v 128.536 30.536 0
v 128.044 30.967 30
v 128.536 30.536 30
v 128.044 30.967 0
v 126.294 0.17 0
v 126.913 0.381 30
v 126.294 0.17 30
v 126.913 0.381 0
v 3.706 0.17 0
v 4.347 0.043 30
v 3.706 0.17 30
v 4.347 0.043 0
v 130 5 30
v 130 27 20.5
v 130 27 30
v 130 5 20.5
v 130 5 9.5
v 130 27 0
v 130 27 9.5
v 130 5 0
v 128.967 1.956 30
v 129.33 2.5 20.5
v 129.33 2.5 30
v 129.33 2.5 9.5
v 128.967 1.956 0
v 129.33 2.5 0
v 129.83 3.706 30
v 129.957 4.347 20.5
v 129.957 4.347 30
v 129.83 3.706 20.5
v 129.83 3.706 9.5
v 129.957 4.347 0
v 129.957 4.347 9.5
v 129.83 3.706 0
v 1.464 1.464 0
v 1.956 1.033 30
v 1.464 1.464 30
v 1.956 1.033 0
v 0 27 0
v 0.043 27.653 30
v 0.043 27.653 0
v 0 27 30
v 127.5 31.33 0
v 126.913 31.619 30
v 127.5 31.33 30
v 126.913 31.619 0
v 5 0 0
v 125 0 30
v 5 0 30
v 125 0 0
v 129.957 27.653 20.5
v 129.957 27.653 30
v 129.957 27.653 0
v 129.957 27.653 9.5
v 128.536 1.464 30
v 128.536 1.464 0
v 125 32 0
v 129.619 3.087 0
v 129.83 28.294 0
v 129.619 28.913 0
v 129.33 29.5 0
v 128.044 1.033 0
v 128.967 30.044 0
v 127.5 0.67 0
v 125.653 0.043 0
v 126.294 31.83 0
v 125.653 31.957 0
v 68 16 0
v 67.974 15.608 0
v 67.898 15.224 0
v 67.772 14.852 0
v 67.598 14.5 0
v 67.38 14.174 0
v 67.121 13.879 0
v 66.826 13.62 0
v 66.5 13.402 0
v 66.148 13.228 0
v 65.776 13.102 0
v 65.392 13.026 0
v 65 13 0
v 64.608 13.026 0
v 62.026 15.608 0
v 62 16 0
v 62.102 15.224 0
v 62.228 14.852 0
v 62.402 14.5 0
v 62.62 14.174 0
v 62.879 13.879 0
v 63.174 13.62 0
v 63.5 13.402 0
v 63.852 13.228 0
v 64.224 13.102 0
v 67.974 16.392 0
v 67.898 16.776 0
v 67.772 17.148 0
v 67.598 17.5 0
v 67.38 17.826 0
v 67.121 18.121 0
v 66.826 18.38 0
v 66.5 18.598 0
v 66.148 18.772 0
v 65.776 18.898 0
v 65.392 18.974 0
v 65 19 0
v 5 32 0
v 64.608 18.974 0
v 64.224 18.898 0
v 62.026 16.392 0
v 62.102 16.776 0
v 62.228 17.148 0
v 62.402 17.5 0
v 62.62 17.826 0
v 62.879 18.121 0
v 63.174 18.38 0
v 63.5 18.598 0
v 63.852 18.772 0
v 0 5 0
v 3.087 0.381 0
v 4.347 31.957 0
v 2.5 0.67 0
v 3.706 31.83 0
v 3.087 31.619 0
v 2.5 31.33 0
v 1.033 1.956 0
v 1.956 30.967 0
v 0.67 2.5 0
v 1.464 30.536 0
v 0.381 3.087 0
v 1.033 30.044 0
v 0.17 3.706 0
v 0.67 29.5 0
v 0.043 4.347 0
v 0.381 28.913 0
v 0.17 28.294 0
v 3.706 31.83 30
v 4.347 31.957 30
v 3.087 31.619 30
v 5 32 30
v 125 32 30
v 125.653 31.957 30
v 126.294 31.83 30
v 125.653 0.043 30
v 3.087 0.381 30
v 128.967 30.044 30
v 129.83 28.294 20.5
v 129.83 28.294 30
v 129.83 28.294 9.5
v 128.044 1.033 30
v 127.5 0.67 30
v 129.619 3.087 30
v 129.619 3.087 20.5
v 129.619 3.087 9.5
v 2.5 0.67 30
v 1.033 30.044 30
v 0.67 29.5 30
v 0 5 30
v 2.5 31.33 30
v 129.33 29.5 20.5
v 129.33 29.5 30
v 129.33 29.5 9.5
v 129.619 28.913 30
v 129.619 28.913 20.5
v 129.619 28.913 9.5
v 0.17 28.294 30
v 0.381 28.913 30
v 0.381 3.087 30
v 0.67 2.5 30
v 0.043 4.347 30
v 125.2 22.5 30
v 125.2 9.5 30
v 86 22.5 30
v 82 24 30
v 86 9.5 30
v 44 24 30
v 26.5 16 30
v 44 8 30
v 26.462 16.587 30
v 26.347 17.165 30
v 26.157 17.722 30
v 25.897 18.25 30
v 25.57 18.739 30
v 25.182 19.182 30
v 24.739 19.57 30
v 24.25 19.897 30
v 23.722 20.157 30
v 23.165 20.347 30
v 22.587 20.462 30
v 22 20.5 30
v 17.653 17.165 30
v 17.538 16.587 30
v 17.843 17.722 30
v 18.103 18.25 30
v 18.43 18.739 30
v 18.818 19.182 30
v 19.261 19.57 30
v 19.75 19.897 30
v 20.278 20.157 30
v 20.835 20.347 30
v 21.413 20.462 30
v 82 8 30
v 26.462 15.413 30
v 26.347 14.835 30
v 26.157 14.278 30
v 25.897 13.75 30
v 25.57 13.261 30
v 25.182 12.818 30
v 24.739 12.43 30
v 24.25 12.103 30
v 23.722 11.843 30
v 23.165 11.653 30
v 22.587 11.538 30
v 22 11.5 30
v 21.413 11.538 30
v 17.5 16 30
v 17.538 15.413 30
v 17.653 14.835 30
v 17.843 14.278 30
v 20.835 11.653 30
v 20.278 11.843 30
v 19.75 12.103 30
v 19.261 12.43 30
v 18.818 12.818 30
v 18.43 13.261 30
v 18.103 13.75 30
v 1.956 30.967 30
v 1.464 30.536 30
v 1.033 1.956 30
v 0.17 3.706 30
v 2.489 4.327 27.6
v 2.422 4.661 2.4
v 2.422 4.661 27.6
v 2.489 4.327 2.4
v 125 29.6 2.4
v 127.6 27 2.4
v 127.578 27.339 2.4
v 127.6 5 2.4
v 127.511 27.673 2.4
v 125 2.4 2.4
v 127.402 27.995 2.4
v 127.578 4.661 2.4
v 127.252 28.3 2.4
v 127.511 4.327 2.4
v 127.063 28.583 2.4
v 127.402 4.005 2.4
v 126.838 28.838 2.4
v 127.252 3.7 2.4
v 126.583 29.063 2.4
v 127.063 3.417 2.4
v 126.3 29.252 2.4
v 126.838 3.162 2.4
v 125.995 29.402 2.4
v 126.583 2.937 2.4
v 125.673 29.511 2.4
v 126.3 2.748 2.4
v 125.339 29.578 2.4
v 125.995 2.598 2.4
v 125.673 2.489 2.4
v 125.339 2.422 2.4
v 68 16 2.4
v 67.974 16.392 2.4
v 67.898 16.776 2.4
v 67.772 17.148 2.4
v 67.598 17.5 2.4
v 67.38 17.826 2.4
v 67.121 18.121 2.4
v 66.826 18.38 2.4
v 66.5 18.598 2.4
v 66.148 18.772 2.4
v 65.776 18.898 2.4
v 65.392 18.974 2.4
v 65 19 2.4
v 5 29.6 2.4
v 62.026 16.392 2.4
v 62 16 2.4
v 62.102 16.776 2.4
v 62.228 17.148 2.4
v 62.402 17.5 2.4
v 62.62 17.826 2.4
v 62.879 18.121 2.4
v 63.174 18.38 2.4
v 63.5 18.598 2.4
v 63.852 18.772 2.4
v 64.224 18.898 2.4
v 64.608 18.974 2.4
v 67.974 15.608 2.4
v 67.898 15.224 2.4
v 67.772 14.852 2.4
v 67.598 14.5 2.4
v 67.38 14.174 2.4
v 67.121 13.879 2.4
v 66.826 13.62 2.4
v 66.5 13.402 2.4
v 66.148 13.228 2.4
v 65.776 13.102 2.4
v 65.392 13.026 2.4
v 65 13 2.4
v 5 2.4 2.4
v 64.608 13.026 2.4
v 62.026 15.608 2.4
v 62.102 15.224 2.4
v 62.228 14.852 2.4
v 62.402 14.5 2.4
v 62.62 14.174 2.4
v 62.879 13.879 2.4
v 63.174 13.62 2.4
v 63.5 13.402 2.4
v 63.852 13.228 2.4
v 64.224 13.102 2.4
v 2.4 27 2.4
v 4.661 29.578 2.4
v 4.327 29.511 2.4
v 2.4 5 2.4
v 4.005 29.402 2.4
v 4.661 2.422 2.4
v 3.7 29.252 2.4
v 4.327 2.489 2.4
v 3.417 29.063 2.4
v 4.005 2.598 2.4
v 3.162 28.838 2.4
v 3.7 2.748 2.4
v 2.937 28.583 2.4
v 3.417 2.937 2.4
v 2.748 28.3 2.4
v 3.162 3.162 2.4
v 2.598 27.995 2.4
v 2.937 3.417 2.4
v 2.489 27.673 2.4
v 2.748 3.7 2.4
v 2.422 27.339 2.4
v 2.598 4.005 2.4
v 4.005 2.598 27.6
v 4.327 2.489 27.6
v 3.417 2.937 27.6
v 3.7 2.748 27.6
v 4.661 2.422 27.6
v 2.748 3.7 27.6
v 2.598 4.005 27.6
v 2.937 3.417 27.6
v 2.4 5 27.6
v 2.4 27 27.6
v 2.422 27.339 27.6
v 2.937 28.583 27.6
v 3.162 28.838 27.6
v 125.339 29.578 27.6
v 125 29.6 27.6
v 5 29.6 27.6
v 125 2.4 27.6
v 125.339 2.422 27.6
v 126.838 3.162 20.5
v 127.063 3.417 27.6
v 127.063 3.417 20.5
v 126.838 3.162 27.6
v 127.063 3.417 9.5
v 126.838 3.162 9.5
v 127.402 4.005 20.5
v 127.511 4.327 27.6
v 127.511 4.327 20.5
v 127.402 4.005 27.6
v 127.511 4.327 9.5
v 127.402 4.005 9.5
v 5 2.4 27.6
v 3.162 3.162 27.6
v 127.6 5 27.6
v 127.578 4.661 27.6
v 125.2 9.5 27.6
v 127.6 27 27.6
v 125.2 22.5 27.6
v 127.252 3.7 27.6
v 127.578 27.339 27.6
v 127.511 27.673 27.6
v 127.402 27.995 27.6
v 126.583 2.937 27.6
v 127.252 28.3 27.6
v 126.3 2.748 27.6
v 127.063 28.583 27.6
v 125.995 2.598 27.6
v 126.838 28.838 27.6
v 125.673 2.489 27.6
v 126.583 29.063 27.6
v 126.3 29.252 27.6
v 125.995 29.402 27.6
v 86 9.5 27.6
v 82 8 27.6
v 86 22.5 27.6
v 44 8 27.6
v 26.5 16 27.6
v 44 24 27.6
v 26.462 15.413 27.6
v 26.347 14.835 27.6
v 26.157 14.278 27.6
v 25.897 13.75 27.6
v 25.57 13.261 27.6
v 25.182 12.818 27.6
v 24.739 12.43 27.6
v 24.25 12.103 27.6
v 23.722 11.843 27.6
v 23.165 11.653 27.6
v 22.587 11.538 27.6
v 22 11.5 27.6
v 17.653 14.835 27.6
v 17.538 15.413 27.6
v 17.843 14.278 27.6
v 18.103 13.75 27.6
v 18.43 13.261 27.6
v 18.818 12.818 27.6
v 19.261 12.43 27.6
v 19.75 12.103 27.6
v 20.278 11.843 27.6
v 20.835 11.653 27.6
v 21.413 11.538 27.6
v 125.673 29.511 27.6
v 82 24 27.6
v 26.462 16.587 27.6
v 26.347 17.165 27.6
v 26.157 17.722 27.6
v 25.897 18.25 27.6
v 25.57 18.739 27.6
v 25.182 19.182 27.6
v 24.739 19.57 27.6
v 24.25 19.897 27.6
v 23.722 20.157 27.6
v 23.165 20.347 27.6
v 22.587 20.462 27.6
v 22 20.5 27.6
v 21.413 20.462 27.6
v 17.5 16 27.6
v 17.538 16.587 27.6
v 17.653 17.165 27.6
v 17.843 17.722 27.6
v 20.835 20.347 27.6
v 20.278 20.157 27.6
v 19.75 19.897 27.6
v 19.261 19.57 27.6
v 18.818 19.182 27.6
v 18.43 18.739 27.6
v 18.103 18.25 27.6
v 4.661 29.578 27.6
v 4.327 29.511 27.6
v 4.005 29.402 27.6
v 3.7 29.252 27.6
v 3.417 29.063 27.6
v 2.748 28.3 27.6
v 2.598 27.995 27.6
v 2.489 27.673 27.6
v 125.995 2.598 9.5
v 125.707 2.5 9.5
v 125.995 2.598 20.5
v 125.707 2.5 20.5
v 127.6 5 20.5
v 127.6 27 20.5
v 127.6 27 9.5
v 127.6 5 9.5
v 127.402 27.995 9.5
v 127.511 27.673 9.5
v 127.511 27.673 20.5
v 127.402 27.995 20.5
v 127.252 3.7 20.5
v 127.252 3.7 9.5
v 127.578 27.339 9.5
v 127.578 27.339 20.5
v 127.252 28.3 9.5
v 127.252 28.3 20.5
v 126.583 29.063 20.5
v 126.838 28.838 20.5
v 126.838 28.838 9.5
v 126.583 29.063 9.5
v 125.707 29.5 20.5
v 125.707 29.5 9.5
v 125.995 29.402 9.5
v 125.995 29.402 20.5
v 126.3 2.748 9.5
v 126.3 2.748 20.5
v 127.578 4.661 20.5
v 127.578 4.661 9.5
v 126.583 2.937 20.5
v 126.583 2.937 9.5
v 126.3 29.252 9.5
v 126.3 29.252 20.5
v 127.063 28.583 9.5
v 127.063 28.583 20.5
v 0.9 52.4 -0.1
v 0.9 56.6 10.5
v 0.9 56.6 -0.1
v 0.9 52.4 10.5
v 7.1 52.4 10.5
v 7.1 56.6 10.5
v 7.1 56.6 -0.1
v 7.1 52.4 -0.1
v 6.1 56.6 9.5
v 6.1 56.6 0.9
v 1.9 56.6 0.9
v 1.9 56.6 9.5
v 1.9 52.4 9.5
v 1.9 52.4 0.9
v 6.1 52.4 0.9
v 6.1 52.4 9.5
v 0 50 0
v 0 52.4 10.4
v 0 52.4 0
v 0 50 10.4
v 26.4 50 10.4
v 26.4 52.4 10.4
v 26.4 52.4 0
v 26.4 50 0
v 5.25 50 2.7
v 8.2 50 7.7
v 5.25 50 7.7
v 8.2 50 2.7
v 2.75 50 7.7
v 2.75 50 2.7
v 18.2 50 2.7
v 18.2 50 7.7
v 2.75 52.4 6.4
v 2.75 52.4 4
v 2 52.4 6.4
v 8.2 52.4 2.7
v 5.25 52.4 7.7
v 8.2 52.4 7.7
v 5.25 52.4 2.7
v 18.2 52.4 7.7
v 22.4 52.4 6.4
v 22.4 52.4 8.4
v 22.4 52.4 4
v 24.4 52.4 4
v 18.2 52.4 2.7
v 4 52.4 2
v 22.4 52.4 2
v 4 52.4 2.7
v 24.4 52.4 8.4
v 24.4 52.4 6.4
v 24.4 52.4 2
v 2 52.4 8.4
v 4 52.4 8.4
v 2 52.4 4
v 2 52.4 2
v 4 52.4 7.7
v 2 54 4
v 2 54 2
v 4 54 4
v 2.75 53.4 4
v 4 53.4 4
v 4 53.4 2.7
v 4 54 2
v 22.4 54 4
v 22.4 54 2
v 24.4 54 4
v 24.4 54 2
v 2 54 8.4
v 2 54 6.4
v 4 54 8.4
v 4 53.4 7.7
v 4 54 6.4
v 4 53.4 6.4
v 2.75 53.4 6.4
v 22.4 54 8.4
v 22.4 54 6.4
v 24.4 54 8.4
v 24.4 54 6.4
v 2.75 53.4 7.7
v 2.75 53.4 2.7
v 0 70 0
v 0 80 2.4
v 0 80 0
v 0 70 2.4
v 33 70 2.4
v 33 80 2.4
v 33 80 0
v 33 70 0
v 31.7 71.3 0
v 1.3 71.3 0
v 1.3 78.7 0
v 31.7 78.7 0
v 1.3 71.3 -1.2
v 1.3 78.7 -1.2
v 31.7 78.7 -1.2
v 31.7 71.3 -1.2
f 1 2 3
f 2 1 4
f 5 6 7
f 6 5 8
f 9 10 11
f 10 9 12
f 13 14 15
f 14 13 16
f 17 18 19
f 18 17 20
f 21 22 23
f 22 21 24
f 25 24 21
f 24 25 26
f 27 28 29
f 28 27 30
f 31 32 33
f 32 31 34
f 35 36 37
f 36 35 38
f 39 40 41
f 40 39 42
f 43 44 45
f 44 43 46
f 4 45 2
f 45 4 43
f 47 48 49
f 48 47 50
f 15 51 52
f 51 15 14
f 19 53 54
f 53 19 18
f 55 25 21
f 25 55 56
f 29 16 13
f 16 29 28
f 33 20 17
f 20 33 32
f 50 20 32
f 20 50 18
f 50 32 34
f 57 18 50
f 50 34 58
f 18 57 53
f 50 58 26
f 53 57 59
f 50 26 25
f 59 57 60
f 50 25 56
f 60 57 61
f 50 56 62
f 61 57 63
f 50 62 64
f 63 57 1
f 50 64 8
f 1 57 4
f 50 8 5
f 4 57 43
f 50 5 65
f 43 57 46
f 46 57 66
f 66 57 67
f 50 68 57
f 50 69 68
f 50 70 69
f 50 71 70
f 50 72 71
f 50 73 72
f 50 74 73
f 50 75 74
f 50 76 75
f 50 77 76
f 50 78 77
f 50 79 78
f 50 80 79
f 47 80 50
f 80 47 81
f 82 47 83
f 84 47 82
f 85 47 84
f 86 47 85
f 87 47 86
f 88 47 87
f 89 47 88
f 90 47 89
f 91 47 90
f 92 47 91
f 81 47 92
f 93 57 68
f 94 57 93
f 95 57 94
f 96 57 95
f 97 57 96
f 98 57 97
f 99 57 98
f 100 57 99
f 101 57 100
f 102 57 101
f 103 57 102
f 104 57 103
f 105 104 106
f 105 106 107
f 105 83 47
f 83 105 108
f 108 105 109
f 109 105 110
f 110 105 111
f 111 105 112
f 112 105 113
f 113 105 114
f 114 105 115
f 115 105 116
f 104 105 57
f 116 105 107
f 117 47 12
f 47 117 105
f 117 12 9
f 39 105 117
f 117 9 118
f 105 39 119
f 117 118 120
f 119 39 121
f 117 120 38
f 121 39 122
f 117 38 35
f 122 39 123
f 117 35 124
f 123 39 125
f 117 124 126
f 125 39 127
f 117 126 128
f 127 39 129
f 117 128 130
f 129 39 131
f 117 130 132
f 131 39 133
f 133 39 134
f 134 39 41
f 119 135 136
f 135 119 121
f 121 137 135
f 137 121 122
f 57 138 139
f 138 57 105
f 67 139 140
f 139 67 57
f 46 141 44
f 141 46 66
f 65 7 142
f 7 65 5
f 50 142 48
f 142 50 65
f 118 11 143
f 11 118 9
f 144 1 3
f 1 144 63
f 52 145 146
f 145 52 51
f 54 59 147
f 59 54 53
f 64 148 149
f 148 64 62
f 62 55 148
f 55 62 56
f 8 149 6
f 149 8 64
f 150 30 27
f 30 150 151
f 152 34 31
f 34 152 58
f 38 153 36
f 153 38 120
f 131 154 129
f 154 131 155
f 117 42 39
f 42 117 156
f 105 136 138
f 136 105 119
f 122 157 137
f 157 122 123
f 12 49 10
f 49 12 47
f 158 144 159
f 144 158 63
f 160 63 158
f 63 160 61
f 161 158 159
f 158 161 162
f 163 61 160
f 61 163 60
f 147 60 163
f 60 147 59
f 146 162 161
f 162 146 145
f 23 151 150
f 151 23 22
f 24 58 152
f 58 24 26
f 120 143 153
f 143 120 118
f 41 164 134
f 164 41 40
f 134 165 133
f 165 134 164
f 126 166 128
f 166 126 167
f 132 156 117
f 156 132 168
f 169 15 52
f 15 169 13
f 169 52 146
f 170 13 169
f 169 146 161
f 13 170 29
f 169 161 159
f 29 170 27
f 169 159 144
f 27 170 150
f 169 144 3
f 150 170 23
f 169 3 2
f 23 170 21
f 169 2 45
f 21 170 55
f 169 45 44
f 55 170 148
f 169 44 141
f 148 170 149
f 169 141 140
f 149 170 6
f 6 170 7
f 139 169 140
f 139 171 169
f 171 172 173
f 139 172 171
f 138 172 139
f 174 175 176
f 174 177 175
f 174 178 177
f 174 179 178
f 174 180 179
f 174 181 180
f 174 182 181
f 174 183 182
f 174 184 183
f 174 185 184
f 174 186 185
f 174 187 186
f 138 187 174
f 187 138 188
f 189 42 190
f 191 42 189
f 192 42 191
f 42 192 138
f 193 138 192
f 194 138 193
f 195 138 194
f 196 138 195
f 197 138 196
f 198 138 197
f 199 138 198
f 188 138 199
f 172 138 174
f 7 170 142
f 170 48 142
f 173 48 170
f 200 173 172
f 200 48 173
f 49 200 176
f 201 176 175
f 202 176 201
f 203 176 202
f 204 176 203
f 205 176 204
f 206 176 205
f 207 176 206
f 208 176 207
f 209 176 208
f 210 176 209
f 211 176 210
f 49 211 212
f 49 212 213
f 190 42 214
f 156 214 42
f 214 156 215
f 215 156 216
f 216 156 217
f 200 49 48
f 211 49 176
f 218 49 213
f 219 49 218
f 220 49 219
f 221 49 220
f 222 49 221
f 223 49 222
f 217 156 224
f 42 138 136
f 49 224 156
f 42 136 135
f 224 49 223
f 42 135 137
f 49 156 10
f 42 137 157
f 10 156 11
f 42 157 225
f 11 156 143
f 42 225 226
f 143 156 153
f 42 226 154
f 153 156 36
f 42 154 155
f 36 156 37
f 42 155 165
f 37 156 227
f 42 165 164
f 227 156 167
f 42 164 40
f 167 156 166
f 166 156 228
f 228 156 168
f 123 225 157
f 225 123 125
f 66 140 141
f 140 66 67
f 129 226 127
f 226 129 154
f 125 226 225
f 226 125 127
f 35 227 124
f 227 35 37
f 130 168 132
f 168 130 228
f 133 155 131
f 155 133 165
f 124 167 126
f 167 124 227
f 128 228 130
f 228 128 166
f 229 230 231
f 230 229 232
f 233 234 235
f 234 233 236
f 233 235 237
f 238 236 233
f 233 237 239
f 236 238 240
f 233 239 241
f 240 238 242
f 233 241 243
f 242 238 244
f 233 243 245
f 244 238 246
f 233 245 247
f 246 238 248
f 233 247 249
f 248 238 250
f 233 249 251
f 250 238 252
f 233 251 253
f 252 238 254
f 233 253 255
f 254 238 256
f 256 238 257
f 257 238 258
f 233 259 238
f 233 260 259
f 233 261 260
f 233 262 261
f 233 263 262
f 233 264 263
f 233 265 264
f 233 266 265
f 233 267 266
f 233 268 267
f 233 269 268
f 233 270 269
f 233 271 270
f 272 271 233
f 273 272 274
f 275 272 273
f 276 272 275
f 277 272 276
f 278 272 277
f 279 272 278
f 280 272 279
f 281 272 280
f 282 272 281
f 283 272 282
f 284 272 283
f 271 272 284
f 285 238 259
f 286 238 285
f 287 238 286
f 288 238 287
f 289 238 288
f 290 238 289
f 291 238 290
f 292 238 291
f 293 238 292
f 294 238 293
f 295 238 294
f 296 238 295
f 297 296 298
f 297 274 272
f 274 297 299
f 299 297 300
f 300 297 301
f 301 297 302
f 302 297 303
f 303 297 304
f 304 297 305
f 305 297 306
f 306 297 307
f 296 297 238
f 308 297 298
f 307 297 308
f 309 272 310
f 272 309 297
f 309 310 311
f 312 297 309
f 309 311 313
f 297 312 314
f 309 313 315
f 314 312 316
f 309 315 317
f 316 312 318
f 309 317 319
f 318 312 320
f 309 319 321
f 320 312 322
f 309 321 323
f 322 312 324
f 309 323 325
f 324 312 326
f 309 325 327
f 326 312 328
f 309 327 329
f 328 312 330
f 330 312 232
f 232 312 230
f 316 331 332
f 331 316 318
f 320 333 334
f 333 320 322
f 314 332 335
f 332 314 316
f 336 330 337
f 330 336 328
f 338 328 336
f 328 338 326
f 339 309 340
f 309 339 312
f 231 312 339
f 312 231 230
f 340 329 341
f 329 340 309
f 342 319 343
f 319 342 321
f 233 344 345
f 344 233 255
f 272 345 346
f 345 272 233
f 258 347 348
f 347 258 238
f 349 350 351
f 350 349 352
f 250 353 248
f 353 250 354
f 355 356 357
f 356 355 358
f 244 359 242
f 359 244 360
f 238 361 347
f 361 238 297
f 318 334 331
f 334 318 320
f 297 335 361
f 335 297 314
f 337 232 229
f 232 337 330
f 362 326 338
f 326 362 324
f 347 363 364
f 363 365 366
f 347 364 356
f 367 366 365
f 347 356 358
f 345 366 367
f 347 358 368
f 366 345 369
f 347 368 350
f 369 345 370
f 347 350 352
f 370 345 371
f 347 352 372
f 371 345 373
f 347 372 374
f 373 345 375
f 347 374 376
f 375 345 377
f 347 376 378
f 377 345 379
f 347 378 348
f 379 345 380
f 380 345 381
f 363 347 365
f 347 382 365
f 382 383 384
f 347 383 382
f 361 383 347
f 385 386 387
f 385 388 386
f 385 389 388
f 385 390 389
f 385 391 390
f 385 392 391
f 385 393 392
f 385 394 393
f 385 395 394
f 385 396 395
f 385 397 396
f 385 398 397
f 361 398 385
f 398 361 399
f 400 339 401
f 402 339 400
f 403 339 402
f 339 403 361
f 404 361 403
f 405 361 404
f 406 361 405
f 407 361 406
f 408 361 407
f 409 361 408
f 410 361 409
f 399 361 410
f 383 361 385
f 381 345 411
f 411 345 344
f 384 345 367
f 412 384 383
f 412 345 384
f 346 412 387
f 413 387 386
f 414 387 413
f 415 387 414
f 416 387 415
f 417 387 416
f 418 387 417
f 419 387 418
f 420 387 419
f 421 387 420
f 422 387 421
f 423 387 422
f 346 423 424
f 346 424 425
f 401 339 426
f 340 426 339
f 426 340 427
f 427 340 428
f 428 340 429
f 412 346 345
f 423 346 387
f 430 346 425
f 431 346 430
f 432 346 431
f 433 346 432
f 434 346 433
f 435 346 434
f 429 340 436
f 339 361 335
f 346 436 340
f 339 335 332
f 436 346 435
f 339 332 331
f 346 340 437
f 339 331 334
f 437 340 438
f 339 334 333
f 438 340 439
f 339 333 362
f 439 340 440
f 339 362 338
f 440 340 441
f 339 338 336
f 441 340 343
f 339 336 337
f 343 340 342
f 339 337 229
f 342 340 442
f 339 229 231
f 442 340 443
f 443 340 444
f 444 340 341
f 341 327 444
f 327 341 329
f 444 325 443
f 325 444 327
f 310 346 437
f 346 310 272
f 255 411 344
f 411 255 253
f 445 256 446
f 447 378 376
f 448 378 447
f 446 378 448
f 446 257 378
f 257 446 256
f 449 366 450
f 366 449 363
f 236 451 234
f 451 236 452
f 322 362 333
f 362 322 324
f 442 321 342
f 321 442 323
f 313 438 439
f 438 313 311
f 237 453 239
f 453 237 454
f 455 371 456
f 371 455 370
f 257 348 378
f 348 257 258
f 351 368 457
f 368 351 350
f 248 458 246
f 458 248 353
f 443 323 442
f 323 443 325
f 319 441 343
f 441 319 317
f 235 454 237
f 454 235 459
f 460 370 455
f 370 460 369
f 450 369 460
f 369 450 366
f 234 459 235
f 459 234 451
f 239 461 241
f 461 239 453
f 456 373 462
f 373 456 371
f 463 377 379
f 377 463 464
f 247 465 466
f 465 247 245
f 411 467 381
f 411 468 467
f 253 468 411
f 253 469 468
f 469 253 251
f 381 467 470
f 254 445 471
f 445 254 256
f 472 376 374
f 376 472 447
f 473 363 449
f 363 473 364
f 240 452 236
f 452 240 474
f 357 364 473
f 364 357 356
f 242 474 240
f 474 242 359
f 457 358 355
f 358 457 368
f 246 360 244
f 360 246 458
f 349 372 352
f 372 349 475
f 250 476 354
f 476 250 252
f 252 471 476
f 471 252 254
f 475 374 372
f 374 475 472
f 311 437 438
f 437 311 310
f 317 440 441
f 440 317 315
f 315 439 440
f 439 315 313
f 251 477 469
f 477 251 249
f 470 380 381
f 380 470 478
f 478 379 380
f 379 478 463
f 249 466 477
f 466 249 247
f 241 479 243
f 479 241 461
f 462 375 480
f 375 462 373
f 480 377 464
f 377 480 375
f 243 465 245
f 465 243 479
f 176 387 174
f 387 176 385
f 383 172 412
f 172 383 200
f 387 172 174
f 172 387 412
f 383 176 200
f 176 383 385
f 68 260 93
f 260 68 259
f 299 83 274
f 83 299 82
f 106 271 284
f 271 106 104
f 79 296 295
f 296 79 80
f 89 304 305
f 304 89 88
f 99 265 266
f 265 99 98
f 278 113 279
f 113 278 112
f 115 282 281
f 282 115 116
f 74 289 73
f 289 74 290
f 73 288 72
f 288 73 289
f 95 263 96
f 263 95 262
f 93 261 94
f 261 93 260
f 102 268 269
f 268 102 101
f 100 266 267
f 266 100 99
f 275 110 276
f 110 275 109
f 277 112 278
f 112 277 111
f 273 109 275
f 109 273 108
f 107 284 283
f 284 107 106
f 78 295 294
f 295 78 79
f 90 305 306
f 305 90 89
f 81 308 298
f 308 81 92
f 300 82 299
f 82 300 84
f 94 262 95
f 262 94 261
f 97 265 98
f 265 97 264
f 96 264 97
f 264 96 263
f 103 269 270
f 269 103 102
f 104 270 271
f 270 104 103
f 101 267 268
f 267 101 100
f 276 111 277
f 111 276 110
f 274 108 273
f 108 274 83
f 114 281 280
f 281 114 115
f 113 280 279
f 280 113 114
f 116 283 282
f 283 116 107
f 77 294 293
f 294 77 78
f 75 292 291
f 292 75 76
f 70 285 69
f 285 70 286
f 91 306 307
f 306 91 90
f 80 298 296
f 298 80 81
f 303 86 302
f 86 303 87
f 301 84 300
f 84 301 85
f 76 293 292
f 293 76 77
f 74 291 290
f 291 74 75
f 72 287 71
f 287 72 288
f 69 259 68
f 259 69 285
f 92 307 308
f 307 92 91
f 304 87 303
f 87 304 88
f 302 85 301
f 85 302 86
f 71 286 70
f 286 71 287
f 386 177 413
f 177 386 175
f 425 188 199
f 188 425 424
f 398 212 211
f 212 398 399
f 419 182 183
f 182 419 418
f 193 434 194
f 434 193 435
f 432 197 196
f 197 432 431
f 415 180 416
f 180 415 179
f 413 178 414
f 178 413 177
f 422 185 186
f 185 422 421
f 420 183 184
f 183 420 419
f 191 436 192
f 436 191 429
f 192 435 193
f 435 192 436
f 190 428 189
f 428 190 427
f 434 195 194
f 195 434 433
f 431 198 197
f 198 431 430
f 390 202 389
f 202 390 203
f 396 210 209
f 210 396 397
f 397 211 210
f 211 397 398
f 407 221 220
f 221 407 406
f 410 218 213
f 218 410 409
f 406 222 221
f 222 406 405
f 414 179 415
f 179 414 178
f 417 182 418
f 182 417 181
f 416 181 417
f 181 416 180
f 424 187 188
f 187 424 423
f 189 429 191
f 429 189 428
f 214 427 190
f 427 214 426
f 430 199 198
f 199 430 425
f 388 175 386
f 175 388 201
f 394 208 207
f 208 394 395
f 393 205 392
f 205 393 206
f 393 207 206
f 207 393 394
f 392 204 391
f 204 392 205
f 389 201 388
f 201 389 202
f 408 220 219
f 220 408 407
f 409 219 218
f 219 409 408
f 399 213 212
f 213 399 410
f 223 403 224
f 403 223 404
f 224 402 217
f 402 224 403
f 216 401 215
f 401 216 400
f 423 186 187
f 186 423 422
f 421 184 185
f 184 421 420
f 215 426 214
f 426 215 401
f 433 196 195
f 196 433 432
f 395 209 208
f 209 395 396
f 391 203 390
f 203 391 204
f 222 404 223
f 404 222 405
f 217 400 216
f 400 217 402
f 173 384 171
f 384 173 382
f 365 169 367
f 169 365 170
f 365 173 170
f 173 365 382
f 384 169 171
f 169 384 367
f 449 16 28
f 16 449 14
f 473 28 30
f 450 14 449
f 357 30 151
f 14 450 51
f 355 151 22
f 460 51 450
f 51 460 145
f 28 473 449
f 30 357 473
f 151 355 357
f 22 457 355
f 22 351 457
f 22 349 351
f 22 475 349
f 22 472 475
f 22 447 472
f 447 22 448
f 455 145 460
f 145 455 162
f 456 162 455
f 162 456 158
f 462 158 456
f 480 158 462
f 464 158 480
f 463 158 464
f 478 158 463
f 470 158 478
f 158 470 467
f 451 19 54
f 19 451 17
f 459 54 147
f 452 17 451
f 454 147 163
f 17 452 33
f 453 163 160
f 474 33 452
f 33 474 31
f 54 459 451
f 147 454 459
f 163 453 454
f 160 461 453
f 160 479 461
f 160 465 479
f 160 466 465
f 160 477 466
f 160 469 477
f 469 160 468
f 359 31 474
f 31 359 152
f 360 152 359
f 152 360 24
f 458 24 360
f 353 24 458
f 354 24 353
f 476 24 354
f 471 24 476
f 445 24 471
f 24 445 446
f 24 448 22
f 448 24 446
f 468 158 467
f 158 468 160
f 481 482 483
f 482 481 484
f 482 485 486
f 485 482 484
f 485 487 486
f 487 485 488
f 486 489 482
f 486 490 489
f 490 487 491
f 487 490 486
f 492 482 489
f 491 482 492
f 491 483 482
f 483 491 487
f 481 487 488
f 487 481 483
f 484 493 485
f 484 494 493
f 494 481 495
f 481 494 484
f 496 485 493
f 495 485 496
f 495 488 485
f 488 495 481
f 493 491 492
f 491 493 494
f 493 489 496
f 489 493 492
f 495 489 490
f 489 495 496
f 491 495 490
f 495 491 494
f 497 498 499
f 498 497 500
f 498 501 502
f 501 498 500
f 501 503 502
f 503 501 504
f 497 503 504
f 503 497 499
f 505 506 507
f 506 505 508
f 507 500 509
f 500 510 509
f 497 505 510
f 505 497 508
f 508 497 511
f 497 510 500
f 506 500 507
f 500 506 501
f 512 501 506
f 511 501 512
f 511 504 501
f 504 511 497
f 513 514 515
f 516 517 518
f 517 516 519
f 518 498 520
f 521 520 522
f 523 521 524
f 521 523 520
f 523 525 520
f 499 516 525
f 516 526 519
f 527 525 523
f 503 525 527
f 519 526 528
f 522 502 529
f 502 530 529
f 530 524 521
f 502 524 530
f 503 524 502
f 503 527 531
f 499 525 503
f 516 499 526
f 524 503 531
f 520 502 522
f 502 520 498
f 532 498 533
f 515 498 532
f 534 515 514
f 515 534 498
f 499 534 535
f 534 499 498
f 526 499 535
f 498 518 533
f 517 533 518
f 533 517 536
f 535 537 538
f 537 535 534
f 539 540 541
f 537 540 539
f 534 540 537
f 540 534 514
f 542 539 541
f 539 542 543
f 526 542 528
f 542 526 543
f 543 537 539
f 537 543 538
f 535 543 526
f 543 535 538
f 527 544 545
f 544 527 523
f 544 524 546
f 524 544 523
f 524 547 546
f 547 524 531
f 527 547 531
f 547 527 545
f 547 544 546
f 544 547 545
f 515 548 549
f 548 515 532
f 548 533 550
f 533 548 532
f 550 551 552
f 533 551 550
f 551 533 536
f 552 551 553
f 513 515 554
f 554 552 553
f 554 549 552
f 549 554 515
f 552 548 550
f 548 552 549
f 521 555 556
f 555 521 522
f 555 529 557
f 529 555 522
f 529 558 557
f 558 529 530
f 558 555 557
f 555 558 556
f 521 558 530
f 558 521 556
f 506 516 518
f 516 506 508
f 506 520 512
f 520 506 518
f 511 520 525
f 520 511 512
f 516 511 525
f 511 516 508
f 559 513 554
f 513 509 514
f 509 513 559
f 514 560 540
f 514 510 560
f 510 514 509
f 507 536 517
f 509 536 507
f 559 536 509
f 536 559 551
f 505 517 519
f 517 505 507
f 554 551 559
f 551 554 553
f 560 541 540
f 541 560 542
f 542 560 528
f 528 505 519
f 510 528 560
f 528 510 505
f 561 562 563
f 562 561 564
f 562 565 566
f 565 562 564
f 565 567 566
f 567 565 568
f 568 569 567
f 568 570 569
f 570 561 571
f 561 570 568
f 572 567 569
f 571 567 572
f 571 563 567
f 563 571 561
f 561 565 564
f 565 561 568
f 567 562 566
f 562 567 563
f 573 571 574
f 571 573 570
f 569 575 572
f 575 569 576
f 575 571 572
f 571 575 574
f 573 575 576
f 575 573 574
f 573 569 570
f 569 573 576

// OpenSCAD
// =====================================================================
// BEYBLADE X - BATTLE PASS DIY - v4 (REVISION ESTERNA)
// Il sistema si posiziona SOPRA il lanciatore originale tramite
// slitte inferiori. Dimensionato su Ripcord e String launcher.
// =====================================================================

/* ============================ */
/*      PARAMETRI UTENTE        */
/* ============================ */

// --- Corpo principale ---
body_length          = 130;  // 13cm (come originale)
body_width           = 32;   // 3.2cm 
body_height          = 30;   // 3cm (come originale)
wall_thickness       = 2.4;
corner_radius        = 5;

// --- Finestra superiore (ispezione) ---
window_length        = 38;
window_width         = 16;
window_inset         = 44;

// --- BINARI DI AGGANCIO (T-Slot per slitta lanciatore) ---
// Regolare per il fit sul lanciatore
rail_width           = 22.0;  // Larghezza slitta (interna)
rail_height          = 8.0;   // Discesa clip (asse Z negativo)
rail_lip_depth       = 2.5;   // Rientranza del gancio
clip_thickness       = 3.0;   // Spessore alette
clip_length          = 40.0;  // Lunghezza del blocco di aggancio

// --- GANCIO DI BLOCCO MECCANICO (Bilanciere Z con molla in metallo) ---
pivot_hole_dia       = 2.0;   // Foro asse (filamento 1.75mm)
lock_w               = 6.0;   // Altezza (Z) della levetta
lock_len             = 24.0;  // Lunghezza totale (X)
lock_depth           = 4.0;   // Profondita (Y) della levetta

// --- Vano sensore TCRT5000 ---
sensor_pcb_w         = 32;
sensor_pcb_d         = 14;
sensor_pcb_h         = 7;
sensor_slot_clearance = 0.6;
sensor_sight_dia     = 6;

// --- Vano elettronica: XIAO ESP32-C3 + LiPo 802540 ---
mcu_w                = 21;
mcu_d                = 17.5;
mcu_h                = 6;
batt_w               = 25;
batt_d               = 40;
batt_h               = 8;
elec_margin          = 3;
elec_rail_depth      = 1.2;
usb_slot_w           = 10;
usb_slot_h           = 5;

// --- Sportello vano elettronica ---
lid_clearance        = 0.3;
lid_thickness        = 2.2;

// --- PULSANTE FRONTALE ---
button_hole_dia      = 9;
button_switch_w      = 6;
button_cavity_depth  = 8;

// --- DISPLAY OLED 0.91" 128x32 AZ-Delivery ---
oled_pcb_w           = 38.2;
oled_pcb_d           = 12.0;
oled_pcb_h           = 3.3;
oled_clearance       = 0.5;
oled_window_w        = 31.0;
oled_window_h        = 8.0;
oled_wire_channel_w  = 6;
oled_wire_channel_h  = 3;
oled_x_offset        = window_inset + window_length + 4;
oled_cap_lip         = 1.2;

$fn = 48;

/* ============================ */
/*      MODULI BASE             */
/* ============================ */

module rounded_box(w, d, h, r) {
    hull() {
        for (x = [r, w - r])
            for (y = [r, d - r])
                translate([x, y, 0])
                    cylinder(h = h, r = r);
    }
}

module main_shell() {
    difference() {
        rounded_box(body_length, body_width, body_height, corner_radius);

        translate([wall_thickness, wall_thickness, wall_thickness])
            rounded_box(
                body_length - 2*wall_thickness,
                body_width  - 2*wall_thickness,
                body_height - 2*wall_thickness,
                max(corner_radius - wall_thickness, 0.5)
            );

        translate([window_inset, (body_width - window_width)/2, body_height - wall_thickness - 0.5])
            cube([window_length, window_width, wall_thickness + 1]);
    }
}

/* ============================ */
/* MODULO: BINARI DI AGGANCIO   */
/* (Sporgenti dal fondo Z=0)    */
/* ============================ */

module launcher_mount() {
    clip_x = (body_length - clip_length) / 2;
    clip_y_left = (body_width - rail_width) / 2 - clip_thickness;
    clip_y_right = (body_width + rail_width) / 2;
    
    difference() {
        union() {
            // Binario Sinistro
            translate([clip_x, clip_y_left, -rail_height]) {
                cube([clip_length, clip_thickness, rail_height + 0.1]);
                cube([clip_length, clip_thickness + rail_lip_depth, 2]); 
            }
            // Binario Destro
            translate([clip_x, clip_y_right, -rail_height]) {
                cube([clip_length, clip_thickness, rail_height + 0.1]);
                translate([0, -rail_lip_depth, 0])
                    cube([clip_length, clip_thickness + rail_lip_depth, 2]); 
            }
            // Muro per far poggiare la molla
            translate([clip_x + clip_length - 8, clip_y_left + clip_thickness, -rail_height])
                cube([10, 4, rail_height + 0.1]);
        }
        
        // Fessura laterale per alloggiare la levetta (asse Z)
        translate([clip_x + clip_length - lock_len + 4, clip_y_left - lock_depth - 1, -rail_height + 1])
            cube([lock_len + 4, lock_depth + clip_thickness + 2, lock_w + 1]);
            
        // Foro verticale per il perno (dal basso verso l'alto)
        translate([clip_x + clip_length - lock_len/2 + 4, clip_y_left, -rail_height - 1])
            cylinder(h=rail_height + 5, d=pivot_hole_dia);
    }
}

module mechanical_lock_clip() {
    difference() {
        union() {
            // Corpo leva
            cube([lock_len, lock_depth, lock_w]);
            
            // Fulcro
            translate([lock_len/2, lock_depth - 0.1, 0])
                cylinder(h=lock_w, d=lock_depth + 2);
                
            // Dente
            translate([-2, lock_depth - 0.1, 0])
                cube([2.1, rail_lip_depth + clip_thickness + 0.1, lock_w]);
                
            // Piolino per molla penna (d=4mm esterno, foro 3mm)
            translate([lock_len - 4, lock_depth - 0.1, lock_w/2])
                rotate([-90, 0, 0])
                    cylinder(h=3.1, d=2.8);
        }
        // Foro perno (asse Z)
        translate([lock_len/2, lock_depth, -1])
            cylinder(h=lock_w + 2, d=pivot_hole_dia);
    }
}

module sensor_slot() {
    w_len = sensor_pcb_w + 2*sensor_slot_clearance;
    w_wid = sensor_pcb_d + 2*sensor_slot_clearance;
    h     = sensor_pcb_h + 2*sensor_slot_clearance;

    x = (body_length - w_len)/2;  // Allineato al centro con i binari
    y = (body_width - w_wid)/2;
    z = wall_thickness;           // Sensore sul fondo del corpo (Z=0)

    translate([x, y, z])
        cube([w_len, w_wid, h]);

    // Buco per permettere ai LED IR di guardare giu
    translate([x + w_len/2, body_width/2, -1])
        cylinder(h=wall_thickness+2, d=sensor_sight_dia);
}

module electronics_bay() {
    // Vano a "Cassetto" dal retro: i componenti si infilano in fila indiana (X)
    cavity_len = mcu_d + batt_d + 3*elec_margin; 
    cavity_w   = max(mcu_w, batt_w) + 2;         
    cavity_h   = max(mcu_h, batt_h) + elec_margin; 
    
    x_pos = body_length - cavity_len;
    y_pos = (body_width - cavity_w) / 2;
    z_pos = (body_height - cavity_h) / 2; 
    
    // Taglio del vano (sfonda il muro posteriore)
    translate([x_pos, y_pos, z_pos])
        cube([cavity_len + 1, cavity_w, cavity_h]);
}

module button_hole() {
    button_x = window_inset / 2;
    translate([button_x, body_width/2, body_height - wall_thickness - 1])
        cylinder(h = wall_thickness + 2, d = button_hole_dia);

    translate([button_x - button_switch_w/2, body_width/2 - button_switch_w/2, body_height - wall_thickness - button_cavity_depth])
        cube([button_switch_w, button_switch_w, button_cavity_depth]);
}

module oled_display_bay() {
    oled_bay_w = oled_pcb_w + 2*oled_clearance;
    oled_bay_d = oled_pcb_d + 2*oled_clearance;
    oled_bay_h = oled_pcb_h + oled_clearance;

    oled_x = oled_x_offset;
    oled_y = (body_width - oled_bay_d) / 2;
    oled_z = body_height - wall_thickness - oled_bay_h;

    translate([oled_x, oled_y, oled_z])
        cube([oled_bay_w, oled_bay_d, oled_bay_h + wall_thickness + 1]);

    window_x = oled_x + (oled_bay_w - oled_window_w) / 2;
    window_y = (body_width - oled_window_h) / 2;
    translate([window_x, window_y, body_height - wall_thickness - 0.5])
        cube([oled_window_w, oled_window_h, wall_thickness + 1]);

    // Foro passante verticale per scendere nel vano elettronica
    translate([oled_x + oled_bay_w/2, body_width/2, oled_z - 10])
        cylinder(h=15, d=8);
}

module display_cover_cap() {
    cap_w = oled_window_w + 2*oled_cap_lip - 0.4;
    cap_h = oled_window_h + 2*oled_cap_lip - 0.4;
    translate([0, 0, 0]) cube([cap_w, cap_h, wall_thickness]);
    
    lip_w = oled_window_w - 0.6;
    lip_h = oled_window_h - 0.6;
    translate([(cap_w - lip_w)/2, (cap_h - lip_h)/2, -1.2])
        cube([lip_w, lip_h, 1.2]);
}

module electronics_lid() {
    // Tappo per chiudere il cassetto posteriore
    cavity_w   = max(mcu_w, batt_w) + 2;
    cavity_h   = max(mcu_h, batt_h) + elec_margin;
    
    lid_w = cavity_w - 2*lid_clearance;
    lid_h = cavity_h - 2*lid_clearance;
    lid_t = 2.4; 
    
    difference() {
        union() {
            cube([lid_w, lid_t, lid_h]);
            // Dentini incastro
            translate([2, 2, 2]) cube([2, 2, 2]);
            translate([lid_w - 4, 2, 2]) cube([2, 2, 2]);
            translate([2, 2, lid_h - 4]) cube([2, 2, 2]);
            translate([lid_w - 4, 2, lid_h - 4]) cube([2, 2, 2]);
            
            // Cornice interna per incastrare il corpo dello Slide Switch (8.6 x 4.2 x 4.2)
            translate([4 - 6.2/2, lid_t, (lid_h - 10.6)/2])
                difference() {
                    cube([6.2, 4.2, 10.6]); 
                    translate([1, -0.1, 1])   
                        cube([4.2, 4.4, 8.6]);
                }
        }
        // Buco USB centrale
        translate([(lid_w - usb_slot_w)/2, -1, (lid_h - usb_slot_h)/2])
            cube([usb_slot_w, lid_t + 2, usb_slot_h]);
            
        // Foro scorrevole per la levetta dello switch
        translate([4 - 1.25, -1, (lid_h - 5)/2])
            cube([2.5, lid_t + 2, 5]);
    }
}

/* ============================ */
/*   ASSIEME CORPO COMPLETO     */
/* ============================ */

module holster_body_final() {
    difference() {
        union() {
            main_shell();
            // launcher_mount(); // RIMOSSO: stampato a parte
            
            // Lip per tappo cieco
            oled_bay_w_lip = oled_pcb_w + 2*oled_clearance;
            oled_bay_h_lip = oled_pcb_h + oled_clearance;
            window_x_lip = oled_x_offset + (oled_bay_w_lip - oled_window_w) / 2;
            window_y_lip = (body_width - oled_window_h) / 2;
            translate([window_x_lip - oled_cap_lip, window_y_lip - oled_cap_lip, body_height - wall_thickness - 1.5])
                cube([oled_window_w + 2*oled_cap_lip, oled_window_h + 2*oled_cap_lip, 1.5]);
        }
        sensor_slot();
        button_hole();
        electronics_bay();
        oled_display_bay();
    }
}

/* ============================ */
/*         RENDER FINALE        */
/* ============================ */

holster_body_final();

// Sportello elettronica (distanziato Y=50)
translate([0, 50, 0])
    electronics_lid();

// Tappo cieco display (distanziato Y=70)
translate([0, 70, 0])
    display_cover_cap();

// La levetta di blocco e la slitta sono nel file test_hook_only.scad
